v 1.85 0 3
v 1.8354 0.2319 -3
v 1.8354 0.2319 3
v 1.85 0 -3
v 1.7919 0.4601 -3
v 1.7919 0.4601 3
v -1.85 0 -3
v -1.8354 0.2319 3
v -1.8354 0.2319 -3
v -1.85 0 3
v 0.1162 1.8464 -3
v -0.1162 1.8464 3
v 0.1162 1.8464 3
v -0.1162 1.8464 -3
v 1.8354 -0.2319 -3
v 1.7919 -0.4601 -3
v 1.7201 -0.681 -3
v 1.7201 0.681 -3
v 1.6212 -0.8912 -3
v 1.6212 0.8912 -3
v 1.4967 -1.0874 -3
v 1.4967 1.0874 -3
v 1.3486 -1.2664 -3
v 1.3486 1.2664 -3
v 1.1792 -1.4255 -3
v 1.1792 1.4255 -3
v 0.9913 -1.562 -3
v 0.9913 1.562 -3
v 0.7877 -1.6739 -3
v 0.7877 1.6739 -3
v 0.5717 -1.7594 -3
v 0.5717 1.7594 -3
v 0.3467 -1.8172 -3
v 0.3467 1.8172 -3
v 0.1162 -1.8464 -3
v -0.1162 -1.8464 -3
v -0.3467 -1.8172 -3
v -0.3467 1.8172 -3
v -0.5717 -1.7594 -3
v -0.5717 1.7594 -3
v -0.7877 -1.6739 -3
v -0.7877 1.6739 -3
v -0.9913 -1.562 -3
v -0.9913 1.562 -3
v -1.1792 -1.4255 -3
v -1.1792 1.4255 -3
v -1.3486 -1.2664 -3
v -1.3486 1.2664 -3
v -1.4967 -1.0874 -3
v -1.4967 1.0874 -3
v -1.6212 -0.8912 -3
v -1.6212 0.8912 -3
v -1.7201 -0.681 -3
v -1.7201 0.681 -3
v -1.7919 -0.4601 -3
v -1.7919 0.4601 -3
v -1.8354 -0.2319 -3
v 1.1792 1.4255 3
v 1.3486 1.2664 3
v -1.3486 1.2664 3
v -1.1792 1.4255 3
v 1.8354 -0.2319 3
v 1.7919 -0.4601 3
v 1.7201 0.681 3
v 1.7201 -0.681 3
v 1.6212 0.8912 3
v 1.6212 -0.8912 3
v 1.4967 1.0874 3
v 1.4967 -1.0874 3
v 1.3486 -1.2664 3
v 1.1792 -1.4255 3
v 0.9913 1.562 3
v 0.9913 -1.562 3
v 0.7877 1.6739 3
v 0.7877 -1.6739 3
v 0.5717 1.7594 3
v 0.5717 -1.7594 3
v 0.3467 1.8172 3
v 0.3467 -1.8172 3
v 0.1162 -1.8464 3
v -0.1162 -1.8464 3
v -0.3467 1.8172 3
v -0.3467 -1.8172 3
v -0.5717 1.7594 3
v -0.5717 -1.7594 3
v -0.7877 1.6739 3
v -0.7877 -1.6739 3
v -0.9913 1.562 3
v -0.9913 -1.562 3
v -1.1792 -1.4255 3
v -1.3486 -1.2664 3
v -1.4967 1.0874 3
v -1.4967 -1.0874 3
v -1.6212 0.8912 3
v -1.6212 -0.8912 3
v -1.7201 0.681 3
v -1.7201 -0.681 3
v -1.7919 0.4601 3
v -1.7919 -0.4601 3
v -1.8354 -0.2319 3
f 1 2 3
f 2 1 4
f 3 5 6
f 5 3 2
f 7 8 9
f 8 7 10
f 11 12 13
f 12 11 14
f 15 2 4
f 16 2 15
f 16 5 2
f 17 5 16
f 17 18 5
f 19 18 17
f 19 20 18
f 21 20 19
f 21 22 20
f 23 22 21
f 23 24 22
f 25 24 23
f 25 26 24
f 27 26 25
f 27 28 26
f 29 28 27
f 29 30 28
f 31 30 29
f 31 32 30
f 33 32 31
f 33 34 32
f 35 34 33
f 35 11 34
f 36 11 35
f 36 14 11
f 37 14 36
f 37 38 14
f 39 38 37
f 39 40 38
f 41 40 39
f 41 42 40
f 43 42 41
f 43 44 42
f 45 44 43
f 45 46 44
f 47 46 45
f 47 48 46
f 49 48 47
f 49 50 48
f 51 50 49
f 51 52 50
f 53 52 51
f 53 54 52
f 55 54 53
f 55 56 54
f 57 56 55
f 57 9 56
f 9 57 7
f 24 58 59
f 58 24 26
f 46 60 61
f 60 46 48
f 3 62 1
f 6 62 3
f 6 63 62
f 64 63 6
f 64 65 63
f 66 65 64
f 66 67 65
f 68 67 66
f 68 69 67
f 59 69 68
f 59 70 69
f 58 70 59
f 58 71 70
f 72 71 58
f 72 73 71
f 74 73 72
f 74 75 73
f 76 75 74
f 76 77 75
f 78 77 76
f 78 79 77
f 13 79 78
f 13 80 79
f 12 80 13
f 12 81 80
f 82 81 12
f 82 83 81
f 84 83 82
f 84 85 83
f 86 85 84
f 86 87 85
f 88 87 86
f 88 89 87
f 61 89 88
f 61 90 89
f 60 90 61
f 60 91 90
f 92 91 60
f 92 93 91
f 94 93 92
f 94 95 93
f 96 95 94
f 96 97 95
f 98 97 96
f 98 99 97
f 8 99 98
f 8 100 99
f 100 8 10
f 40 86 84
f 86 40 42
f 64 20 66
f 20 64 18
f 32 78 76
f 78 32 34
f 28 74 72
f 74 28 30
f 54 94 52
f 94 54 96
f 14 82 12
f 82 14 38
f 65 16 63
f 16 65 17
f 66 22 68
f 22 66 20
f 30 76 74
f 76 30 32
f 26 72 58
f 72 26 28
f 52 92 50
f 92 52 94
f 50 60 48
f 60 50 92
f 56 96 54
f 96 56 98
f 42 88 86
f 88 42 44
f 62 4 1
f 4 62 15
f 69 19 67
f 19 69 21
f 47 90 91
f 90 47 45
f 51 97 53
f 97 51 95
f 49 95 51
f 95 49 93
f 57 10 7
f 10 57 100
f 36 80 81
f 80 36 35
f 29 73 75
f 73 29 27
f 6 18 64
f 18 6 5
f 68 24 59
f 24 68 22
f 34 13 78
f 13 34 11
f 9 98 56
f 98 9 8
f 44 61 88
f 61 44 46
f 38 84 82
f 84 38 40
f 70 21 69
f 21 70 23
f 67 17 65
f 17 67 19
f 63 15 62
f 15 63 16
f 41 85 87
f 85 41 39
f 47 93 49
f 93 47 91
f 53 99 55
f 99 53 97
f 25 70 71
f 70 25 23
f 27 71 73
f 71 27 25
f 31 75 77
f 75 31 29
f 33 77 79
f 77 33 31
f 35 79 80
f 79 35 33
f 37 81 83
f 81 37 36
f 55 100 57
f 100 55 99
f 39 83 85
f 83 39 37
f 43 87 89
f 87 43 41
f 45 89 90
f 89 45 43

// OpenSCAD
$fn = 50;


difference() {
	union() {
		translate(v = [0, 0, -3.0000000000]) {
			cylinder(h = 6, r = 1.8500000000);
		}
	}
	union() {
		translate(v = [0, 0, -100.0000000000]) {
			cylinder(h = 200, r = 0);
		}
	}
}
